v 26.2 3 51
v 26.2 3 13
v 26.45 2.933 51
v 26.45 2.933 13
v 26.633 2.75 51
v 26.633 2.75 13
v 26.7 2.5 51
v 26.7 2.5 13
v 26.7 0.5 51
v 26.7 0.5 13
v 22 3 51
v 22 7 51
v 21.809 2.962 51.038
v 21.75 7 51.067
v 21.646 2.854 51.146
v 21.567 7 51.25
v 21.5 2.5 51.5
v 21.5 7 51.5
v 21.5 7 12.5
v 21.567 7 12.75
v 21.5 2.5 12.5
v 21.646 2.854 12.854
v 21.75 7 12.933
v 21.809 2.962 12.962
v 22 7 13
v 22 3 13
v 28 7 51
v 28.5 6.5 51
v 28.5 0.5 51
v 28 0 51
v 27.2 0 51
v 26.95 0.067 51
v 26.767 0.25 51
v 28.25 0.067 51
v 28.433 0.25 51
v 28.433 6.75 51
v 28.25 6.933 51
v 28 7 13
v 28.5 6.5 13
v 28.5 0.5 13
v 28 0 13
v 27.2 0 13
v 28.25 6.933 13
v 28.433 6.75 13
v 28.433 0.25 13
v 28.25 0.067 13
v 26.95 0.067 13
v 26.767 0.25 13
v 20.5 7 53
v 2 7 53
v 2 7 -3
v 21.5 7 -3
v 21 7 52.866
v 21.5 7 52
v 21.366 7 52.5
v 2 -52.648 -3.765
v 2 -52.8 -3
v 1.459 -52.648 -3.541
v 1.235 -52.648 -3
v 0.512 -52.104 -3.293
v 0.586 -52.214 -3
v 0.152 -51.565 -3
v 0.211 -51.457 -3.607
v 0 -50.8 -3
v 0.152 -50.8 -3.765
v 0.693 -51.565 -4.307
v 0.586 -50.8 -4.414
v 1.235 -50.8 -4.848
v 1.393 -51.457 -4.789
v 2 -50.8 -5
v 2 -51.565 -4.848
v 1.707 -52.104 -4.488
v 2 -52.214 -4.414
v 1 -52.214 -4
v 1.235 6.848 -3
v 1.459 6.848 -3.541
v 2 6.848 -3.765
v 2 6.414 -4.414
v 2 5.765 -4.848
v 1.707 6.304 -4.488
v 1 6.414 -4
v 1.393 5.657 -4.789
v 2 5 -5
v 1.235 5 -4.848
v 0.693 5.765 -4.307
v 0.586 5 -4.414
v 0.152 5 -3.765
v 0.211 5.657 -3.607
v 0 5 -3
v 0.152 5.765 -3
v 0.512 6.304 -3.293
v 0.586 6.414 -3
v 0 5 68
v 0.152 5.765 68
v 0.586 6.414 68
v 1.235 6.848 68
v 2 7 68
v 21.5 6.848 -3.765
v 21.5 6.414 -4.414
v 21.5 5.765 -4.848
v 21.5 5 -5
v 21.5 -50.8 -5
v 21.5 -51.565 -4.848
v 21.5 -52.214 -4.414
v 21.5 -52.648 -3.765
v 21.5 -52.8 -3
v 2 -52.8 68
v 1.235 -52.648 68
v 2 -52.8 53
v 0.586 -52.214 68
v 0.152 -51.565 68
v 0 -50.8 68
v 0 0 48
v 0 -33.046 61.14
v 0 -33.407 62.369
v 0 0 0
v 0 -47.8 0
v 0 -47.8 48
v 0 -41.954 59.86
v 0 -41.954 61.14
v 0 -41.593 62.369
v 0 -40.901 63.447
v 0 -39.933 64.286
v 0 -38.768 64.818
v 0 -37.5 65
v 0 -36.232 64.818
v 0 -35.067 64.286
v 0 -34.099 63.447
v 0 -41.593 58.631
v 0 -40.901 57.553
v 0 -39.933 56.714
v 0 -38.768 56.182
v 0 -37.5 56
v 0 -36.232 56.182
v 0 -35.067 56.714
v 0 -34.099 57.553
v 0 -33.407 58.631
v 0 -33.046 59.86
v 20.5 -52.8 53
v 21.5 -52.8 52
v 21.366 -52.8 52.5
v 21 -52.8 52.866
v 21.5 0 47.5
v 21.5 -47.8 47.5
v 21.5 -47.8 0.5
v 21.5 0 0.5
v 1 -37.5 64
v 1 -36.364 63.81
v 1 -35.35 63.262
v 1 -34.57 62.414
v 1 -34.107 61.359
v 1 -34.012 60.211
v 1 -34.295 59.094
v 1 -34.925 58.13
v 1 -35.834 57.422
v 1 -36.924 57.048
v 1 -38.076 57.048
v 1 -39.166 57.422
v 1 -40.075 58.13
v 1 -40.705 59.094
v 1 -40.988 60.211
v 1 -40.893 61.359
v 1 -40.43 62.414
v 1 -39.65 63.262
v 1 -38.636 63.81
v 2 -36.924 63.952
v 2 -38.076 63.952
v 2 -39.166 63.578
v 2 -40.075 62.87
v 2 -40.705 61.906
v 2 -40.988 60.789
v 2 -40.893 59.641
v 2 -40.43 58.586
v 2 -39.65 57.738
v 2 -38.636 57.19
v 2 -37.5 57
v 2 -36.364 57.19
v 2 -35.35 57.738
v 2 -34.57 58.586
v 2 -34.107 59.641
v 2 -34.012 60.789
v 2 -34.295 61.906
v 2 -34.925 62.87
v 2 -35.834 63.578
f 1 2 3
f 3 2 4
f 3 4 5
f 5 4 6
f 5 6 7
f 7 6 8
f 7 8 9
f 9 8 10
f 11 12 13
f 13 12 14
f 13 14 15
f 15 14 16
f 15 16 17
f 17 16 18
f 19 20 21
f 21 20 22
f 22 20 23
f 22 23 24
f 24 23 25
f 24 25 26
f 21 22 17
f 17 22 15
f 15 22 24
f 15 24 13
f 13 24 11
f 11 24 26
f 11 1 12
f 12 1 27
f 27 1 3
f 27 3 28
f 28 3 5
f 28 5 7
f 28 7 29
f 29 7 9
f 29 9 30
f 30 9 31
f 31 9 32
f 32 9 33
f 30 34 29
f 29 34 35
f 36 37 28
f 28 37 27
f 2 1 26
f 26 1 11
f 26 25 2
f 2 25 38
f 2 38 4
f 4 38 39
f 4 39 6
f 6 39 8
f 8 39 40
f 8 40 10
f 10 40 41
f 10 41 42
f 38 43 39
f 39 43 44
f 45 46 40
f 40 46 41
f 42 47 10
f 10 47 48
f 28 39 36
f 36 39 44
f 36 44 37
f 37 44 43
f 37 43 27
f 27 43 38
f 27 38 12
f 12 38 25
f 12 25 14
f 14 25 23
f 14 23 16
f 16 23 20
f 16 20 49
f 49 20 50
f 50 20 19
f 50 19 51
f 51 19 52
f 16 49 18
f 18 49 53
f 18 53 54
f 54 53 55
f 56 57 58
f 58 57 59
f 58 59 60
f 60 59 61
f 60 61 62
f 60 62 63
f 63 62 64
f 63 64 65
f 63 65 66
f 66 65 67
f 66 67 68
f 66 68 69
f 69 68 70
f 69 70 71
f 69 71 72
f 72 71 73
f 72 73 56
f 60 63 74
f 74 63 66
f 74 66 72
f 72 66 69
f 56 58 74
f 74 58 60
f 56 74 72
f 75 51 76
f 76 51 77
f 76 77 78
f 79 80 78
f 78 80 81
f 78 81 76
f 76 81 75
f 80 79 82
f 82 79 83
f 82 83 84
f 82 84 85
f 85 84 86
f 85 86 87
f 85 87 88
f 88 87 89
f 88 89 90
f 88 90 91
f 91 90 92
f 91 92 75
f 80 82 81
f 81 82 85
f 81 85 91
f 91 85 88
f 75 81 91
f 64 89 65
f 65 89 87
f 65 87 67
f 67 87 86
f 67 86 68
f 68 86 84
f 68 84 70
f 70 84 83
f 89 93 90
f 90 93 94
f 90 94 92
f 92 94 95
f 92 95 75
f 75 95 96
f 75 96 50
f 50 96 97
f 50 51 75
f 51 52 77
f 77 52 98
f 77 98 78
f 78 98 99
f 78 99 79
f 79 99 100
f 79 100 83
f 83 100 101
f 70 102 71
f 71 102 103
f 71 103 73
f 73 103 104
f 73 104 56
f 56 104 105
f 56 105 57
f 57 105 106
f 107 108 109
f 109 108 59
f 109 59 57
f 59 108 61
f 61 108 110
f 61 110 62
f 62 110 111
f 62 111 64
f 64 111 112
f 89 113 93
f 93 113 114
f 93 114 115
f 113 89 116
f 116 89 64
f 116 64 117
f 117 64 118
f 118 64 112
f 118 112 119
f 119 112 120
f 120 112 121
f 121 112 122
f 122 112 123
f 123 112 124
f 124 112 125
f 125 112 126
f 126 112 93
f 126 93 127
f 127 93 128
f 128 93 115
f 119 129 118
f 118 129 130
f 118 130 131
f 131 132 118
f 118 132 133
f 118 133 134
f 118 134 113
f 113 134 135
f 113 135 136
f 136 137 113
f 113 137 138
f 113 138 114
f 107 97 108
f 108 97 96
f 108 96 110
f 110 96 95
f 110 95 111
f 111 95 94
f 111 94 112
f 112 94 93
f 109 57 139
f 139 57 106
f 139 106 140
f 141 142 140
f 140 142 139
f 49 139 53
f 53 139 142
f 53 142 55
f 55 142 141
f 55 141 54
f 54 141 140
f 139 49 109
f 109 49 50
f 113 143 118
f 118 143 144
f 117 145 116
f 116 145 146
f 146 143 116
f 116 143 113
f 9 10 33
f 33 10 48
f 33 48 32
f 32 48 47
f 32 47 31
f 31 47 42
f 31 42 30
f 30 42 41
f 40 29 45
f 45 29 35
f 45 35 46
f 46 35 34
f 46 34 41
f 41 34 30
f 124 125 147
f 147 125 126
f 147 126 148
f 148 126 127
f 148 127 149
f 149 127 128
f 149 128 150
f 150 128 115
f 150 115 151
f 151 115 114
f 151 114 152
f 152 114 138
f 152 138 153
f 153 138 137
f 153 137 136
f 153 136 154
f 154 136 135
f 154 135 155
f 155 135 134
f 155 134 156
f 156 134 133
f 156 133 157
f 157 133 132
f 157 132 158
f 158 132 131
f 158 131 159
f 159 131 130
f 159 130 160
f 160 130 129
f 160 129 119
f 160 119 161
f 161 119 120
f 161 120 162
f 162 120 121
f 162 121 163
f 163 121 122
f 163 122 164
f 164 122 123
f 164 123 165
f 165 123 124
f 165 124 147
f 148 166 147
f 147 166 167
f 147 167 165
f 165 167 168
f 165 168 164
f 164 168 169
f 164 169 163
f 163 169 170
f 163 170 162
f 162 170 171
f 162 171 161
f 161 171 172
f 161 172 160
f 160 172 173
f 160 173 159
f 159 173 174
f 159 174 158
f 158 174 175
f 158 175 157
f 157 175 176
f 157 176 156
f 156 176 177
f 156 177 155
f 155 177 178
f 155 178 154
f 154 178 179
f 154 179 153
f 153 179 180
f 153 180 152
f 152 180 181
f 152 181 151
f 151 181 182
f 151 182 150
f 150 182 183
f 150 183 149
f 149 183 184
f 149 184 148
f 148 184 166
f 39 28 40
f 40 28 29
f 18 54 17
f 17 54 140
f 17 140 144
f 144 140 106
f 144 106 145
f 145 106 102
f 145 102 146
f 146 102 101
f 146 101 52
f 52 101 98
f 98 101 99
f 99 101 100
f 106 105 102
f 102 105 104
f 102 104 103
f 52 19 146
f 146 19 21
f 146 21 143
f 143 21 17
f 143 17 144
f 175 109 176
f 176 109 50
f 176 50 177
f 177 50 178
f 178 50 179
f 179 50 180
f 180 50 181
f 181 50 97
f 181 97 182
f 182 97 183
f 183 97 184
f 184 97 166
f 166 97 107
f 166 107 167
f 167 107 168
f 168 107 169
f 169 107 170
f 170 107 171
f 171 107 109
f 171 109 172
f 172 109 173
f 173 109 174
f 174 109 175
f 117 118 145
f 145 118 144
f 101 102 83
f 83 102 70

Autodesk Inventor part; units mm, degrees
ref_plane "YZ Plane" through (0, 0, 0) normal (1, 0, 0) x (0, 1, 0)
ref_plane "XZ Plane" through (0, 0, 0) normal (0, 1, 0) x (-1, 0, 0)
ref_plane "XY Plane" through (0, 0, 0) normal (0, 0, 1) x (1, 0, 0)
sketch "Boceto1" plane through (0, 0, 0) normal (1, 0, 0) x (0, 1, 0)
  line L0 (0, 0) -> (-47.8, 0)
  line L1 (-47.8, 0) -> (-47.8, 48)
  line L2 (-47.8, 48) -> (0, 48)
  line L3 (0, 48) -> (0, 0)
  line L4 (-23.9, 48) -> (-23.9, 53)
  line L5 (-23.9, 0) -> (-23.9, -5)
  line L6 (0, 24) -> (5, 24)
  line L7 (-47.8, 24) -> (-52.8, 24)
  line L8 (5, -5) -> (-52.8, -5)
  line L9 (-52.8, -5) -> (-52.8, 53)
  line L10 (-52.8, 53) -> (5, 53)
  line L11 (5, 53) -> (5, -5)
  dimension "d0" = 47.8
  dimension "d1" = 48
  dimension "d2" = 5
  dimension "d3" = 5
  dimension "d4" = 5
  dimension "d5" = 5
extrude "Extrusión1" add sketch "Boceto1" along normal blind 21.5 contours L3 L6 L11 L8 L5 L0 | L5 L8 L9 L7 L1 L0 | L3 L2 L4 L10 L11 L6 | L7 L9 L10 L4 L2 L1
sketch "Boceto2" plane through (0, 0, 0) normal (-1, 0, 0) x (0, 0, 1)
  line L0 (53, 5) -> (53, -52.8) projected
  line L1 (53, 5) -> (68, 5)
  line L2 (68, 5) -> (68, -52.8)
  line L3 (68, -52.8) -> (53, -52.8)
  line L4 (53, -52.8) -> (53, 5)
  point P0 (0, 0)
  dimension "d8" = 15
extrude "Extrusión2" add sketch "Boceto2" against normal blind 2
sketch "Boceto3" plane through (21.5, 0, 0) normal (1, 0, 0) x (0, 0, -1)
  line L0 (-51, 5) -> (-13, 5)
  line L1 (-13, 3) -> (-51, 3)
  line L2 (-51, 5) -> (-51, 3)
  line L3 (-13, 5) -> (-13, 3)
extrude "Extrusión3" add sketch "Boceto3" along normal blind 7
sketch "Boceto4" plane through (21.5, 3, 13) normal (0, -1, 0) x (1, 0, 0)
  line L0 (0, 38) -> (7, 38) projected
  line L1 (0, 0) -> (7, 0) projected
  line L2 (7, 38) -> (5.2, 38)
  line L3 (5.2, 38) -> (5.2, 0)
  line L4 (5.2, 0) -> (7, 0)
  line L5 (7, 0) -> (7, 38)
  point P0 (-21.5, -13)
  point P1 (7, 0)
  dimension "d16" = 1.8
extrude "Extrusión4" add sketch "Boceto4" along normal blind 3
sketch "Boceto5" plane through (0, 0, 0) normal (-1, 0, 0) x (0, 0, 1)
  line L0 (60.5, 5) -> (60.5, -37.5)
  dimension "d19" = 42.5
hole "Agujero1" at (0, -37.5, 60.5) direction (1, 0, 0) diameter 7 depth 2 countersink diameter 9 countersink angle 90
fillet "Empalme3" radius 0.5 2 edges at (28.5, 0, 32) (26.7, 0, 32)
sketch "Boceto6" plane through (21.5, 0, 0) normal (1, 0, 0) x (0, 0, -1)
  line L0 (-48, -47.8) -> (-48, 0) projected
  line L1 (0, -47.8) -> (-48, -47.8) projected
  line L2 (-48, 0) -> (-47.5, 0)
  line L3 (-47.5, 0) -> (-47.5, -47.8)
  line L4 (-47.5, -47.8) -> (-48, -47.8)
  line L5 (-48, -47.8) -> (-48, 0)
  line L6 (-48, 0) -> (0, 0) projected
  line L7 (0, -47.8) -> (-0.5, -47.8)
  line L8 (-0.5, -47.8) -> (-0.5, 0)
  line L9 (-0.5, 0) -> (0, 0)
  line L10 (0, 0) -> (0, -47.8)
  dimension "d30" = 0.5
  dimension "d31" = 0.5
extrude "Extrusión5" add sketch "Boceto6" against normal blind 21.5 contours L0 L2 L3 L1 | L8 L6 L10 L1
chamfer "Chaflán1" distance 0.5 distance2 21.5 2 edges at (0, -23.9, 0.5) (0, -23.9, 47.5) measured on face at (0, -9.3443, 58.8475)
fillet "Empalme4" radius 1 1 edges at (21.5, -23.9, 53)
sketch "Boceto7" plane through (0, 5, -5) normal (0, 1, 0) x (1, 0, 0)
  arc A0 (20.5, -58) -> (21.5, -57) centre (20.5, -57) ccw projected
  line L0 (21.5, -56) -> (21.5, -57) projected
  line L1 (21.5, -56) -> (28.5, -56) projected
  line L2 (28.5, -18) -> (28.5, -56) projected
  line L3 (21.5, -18) -> (28.5, -18) projected
  line L4 (21.5, 0) -> (21.5, -18) projected
  line L5 (0, 0) -> (21.5, 0) projected
  line L6 (0, 0) -> (0, -73) projected
  line L7 (0, -73) -> (2, -73) projected
  line L8 (2, -58) -> (2, -73) projected
  line L9 (2, -58) -> (20.5, -58) projected
  point P0 (0, -5)
extrude "Extrusión6" add sketch "Boceto7" along normal blind 2
fillet "Empalme6" radius 2 5 edges at (0, 7, 31.5) (10.75, 7, -5) (0, -22.9, -5) (10.75, -52.8, -5) (0, -52.8, 31.5)
fillet "Empalme7" radius 0.5 5 edges at (28.5, 7, 32) (21.5, 3, 32) (26.7, 3, 32) (21.5, 5, 13) (21.5, 5, 51)
properties part number "cajetinparaestructura"
